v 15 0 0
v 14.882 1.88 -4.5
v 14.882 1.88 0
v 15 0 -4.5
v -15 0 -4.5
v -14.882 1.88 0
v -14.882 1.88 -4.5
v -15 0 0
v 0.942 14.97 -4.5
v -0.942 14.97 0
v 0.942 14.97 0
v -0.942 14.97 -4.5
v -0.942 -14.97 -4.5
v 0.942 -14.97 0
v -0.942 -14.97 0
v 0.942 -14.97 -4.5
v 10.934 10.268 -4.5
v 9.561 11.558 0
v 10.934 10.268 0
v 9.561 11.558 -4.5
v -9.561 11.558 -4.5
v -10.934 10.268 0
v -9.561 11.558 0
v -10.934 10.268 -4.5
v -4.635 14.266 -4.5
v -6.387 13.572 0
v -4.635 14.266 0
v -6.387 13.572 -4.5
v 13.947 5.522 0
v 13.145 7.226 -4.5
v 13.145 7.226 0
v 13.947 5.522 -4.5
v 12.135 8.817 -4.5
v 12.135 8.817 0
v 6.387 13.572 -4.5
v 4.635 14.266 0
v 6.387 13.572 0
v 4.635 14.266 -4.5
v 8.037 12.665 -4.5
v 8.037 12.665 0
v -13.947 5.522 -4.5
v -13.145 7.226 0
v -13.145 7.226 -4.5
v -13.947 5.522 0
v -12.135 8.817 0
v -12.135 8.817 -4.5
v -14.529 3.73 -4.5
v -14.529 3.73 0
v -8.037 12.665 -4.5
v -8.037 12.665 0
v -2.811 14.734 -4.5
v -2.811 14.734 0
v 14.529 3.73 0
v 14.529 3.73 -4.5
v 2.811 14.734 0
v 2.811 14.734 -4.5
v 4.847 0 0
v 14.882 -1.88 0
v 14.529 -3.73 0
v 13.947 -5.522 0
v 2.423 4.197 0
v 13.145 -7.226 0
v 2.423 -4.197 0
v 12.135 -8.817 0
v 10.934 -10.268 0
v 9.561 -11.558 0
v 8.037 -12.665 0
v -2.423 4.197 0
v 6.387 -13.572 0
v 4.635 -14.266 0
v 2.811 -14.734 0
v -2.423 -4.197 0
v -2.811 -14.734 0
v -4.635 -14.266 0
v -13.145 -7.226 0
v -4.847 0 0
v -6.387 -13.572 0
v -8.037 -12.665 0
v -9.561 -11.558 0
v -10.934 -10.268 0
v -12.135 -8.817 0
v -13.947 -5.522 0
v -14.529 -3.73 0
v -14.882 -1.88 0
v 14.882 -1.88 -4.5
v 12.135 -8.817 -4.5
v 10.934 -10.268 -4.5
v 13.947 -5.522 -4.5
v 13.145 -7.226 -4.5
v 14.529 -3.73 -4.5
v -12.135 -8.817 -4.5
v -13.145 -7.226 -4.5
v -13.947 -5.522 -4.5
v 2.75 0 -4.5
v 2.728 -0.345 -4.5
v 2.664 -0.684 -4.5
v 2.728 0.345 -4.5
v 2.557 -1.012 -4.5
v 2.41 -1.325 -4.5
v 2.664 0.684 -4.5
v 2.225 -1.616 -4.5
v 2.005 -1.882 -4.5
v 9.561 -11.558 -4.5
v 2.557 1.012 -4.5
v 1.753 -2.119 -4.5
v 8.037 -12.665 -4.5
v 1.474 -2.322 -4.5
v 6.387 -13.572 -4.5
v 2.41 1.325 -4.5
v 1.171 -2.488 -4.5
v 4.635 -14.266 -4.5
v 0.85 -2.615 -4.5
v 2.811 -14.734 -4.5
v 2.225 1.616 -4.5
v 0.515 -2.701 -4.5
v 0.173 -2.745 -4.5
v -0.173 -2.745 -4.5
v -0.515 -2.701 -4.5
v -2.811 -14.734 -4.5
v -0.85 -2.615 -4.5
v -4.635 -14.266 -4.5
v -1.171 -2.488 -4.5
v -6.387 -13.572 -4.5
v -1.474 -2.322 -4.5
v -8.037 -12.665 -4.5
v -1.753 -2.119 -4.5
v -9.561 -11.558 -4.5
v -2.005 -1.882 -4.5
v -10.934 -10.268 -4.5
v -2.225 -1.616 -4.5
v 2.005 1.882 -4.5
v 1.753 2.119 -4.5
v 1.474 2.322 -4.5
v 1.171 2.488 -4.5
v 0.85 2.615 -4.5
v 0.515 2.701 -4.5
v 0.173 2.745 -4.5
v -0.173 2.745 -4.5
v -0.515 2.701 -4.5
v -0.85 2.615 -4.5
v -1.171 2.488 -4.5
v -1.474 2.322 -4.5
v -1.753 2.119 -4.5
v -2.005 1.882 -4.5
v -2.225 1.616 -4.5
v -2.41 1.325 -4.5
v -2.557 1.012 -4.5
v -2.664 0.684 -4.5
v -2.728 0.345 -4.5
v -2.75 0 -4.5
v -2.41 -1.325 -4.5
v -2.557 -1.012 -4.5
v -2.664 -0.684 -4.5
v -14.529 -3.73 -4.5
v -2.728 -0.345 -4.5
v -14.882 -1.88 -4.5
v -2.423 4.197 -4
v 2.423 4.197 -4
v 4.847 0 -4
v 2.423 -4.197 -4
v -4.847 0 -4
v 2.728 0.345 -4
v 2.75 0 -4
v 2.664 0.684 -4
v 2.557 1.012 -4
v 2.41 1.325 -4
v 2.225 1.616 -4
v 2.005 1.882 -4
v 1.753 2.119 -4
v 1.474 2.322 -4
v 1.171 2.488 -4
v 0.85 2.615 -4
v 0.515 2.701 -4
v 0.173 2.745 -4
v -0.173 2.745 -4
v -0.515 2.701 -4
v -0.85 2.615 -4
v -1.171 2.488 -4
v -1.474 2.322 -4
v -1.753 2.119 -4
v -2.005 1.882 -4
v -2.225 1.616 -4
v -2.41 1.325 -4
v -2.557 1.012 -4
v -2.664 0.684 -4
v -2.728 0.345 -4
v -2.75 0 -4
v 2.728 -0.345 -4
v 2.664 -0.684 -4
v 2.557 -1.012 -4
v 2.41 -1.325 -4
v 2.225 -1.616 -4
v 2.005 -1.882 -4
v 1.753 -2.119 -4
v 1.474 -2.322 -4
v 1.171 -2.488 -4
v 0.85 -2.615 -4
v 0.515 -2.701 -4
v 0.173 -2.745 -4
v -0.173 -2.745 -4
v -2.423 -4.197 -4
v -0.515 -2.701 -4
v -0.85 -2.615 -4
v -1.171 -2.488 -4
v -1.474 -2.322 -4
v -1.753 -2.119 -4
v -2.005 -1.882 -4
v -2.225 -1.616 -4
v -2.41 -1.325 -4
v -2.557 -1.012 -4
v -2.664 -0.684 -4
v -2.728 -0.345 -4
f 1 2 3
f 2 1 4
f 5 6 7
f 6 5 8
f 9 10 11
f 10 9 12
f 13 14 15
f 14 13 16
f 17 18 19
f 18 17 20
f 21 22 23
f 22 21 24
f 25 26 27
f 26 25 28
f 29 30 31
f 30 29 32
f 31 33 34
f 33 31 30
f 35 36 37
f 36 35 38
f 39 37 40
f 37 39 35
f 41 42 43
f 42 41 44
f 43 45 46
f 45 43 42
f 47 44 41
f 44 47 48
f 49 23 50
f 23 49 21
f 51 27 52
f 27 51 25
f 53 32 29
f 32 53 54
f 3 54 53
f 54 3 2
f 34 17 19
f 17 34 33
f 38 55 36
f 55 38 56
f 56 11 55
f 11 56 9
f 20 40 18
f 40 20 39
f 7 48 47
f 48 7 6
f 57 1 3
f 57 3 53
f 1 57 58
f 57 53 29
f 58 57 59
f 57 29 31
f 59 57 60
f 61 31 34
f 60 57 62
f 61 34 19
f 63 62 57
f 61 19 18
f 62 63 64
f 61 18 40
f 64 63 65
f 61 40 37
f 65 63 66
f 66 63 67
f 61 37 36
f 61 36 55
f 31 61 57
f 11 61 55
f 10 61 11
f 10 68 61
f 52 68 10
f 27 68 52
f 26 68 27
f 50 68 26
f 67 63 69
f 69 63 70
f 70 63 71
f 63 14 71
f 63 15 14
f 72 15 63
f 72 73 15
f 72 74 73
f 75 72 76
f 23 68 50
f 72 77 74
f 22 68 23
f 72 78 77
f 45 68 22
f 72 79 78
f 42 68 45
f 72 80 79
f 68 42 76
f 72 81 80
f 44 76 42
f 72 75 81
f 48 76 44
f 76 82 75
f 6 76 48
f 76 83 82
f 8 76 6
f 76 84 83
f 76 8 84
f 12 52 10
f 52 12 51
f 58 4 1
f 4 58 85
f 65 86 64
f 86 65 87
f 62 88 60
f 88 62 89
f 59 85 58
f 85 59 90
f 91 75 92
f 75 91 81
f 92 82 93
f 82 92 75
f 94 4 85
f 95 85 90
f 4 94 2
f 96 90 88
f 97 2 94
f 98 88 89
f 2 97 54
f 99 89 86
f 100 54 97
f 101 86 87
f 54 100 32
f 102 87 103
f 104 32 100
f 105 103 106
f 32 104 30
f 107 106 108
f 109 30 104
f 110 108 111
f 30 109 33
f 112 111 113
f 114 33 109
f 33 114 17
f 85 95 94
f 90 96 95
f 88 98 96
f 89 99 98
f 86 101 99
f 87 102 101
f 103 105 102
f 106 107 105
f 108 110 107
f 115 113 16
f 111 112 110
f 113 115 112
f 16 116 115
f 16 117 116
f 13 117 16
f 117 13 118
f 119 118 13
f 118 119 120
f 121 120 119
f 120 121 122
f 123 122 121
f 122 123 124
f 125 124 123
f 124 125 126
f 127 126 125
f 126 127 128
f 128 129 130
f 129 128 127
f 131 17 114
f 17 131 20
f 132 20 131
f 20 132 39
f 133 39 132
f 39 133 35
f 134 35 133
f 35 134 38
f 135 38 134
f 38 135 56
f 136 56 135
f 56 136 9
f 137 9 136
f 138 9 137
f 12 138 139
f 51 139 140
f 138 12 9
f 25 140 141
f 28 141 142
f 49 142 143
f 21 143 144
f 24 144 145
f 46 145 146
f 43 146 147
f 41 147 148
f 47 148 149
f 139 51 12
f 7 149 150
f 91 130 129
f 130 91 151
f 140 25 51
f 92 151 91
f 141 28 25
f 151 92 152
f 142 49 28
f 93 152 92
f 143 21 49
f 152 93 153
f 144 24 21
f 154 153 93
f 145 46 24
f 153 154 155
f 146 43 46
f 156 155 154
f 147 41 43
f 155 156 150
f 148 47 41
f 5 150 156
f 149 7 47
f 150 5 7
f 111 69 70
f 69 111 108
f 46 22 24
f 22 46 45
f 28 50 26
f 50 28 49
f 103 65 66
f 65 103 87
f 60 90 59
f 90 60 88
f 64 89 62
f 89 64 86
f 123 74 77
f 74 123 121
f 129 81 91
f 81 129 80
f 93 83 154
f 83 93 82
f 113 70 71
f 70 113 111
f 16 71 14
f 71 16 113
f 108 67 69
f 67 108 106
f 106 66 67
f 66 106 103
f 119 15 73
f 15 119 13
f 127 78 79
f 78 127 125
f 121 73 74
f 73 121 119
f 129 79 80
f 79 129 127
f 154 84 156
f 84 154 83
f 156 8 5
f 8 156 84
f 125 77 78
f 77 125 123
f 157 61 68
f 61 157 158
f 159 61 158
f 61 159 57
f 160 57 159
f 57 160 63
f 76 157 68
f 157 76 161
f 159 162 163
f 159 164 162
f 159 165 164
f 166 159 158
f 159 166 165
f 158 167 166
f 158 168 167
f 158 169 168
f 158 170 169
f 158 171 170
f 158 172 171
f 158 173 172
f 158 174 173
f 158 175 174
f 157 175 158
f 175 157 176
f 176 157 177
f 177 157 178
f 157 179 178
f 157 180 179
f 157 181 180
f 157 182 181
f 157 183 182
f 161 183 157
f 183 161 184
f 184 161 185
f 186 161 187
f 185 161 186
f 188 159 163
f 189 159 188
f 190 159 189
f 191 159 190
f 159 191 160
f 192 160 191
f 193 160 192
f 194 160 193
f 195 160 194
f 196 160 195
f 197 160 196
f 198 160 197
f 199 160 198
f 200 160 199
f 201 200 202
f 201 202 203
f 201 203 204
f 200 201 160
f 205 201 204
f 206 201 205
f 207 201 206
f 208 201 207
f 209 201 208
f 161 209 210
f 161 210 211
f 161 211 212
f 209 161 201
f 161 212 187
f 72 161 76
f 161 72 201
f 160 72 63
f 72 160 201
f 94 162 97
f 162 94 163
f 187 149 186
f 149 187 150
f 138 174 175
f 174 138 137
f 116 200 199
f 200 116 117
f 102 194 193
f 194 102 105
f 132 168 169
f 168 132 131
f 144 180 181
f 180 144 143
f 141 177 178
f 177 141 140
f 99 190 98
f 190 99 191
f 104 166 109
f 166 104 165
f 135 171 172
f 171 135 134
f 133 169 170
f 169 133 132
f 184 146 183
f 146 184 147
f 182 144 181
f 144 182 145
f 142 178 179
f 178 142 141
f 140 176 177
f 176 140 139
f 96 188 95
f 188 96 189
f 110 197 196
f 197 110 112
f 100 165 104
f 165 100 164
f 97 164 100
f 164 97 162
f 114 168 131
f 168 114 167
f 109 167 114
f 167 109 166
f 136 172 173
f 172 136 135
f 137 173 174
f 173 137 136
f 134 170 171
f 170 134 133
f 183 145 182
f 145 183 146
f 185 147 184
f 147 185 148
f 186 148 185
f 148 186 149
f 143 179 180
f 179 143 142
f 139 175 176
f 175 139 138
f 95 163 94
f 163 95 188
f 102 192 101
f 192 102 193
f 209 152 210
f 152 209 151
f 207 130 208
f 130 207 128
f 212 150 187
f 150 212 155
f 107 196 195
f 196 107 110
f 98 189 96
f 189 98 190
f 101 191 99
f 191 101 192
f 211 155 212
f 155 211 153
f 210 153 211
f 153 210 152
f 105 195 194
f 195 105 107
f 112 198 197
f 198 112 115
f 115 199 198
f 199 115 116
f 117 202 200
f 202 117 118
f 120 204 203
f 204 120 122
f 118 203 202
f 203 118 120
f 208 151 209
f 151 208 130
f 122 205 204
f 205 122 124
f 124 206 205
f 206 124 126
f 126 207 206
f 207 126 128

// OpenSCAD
$fn = 50;


difference() {
	union() {
		translate(v = [0, 0, -4.5000000000]) {
			cylinder(h = 4.5000000000, r = 15.0000000000);
		}
		translate(v = [0, 0, -3.0000000000]) {
			cylinder(h = 3, r = 2.8750000000);
		}
	}
	union() {
		translate(v = [0, 0, 0]) {
			rotate(a = [0, 0, 0]) {
				difference() {
					union() {
						translate(v = [0, 0, -4]) {
							linear_extrude(height = 4) {
								polygon(points = [[4.8468000000, 0.0000000000], [2.4234000000, 4.1974519271], [-2.4234000000, 4.1974519271], [-4.8468000000, 0.0000000000], [-2.4234000000, -4.1974519271], [2.4234000000, -4.1974519271]]);
							}
						}
					}
					union();
				}
			}
		}
		#translate(v = [0, 0, -100.0000000000]) {
			cylinder(h = 200, r = 2.7500000000);
		}
	}
}
